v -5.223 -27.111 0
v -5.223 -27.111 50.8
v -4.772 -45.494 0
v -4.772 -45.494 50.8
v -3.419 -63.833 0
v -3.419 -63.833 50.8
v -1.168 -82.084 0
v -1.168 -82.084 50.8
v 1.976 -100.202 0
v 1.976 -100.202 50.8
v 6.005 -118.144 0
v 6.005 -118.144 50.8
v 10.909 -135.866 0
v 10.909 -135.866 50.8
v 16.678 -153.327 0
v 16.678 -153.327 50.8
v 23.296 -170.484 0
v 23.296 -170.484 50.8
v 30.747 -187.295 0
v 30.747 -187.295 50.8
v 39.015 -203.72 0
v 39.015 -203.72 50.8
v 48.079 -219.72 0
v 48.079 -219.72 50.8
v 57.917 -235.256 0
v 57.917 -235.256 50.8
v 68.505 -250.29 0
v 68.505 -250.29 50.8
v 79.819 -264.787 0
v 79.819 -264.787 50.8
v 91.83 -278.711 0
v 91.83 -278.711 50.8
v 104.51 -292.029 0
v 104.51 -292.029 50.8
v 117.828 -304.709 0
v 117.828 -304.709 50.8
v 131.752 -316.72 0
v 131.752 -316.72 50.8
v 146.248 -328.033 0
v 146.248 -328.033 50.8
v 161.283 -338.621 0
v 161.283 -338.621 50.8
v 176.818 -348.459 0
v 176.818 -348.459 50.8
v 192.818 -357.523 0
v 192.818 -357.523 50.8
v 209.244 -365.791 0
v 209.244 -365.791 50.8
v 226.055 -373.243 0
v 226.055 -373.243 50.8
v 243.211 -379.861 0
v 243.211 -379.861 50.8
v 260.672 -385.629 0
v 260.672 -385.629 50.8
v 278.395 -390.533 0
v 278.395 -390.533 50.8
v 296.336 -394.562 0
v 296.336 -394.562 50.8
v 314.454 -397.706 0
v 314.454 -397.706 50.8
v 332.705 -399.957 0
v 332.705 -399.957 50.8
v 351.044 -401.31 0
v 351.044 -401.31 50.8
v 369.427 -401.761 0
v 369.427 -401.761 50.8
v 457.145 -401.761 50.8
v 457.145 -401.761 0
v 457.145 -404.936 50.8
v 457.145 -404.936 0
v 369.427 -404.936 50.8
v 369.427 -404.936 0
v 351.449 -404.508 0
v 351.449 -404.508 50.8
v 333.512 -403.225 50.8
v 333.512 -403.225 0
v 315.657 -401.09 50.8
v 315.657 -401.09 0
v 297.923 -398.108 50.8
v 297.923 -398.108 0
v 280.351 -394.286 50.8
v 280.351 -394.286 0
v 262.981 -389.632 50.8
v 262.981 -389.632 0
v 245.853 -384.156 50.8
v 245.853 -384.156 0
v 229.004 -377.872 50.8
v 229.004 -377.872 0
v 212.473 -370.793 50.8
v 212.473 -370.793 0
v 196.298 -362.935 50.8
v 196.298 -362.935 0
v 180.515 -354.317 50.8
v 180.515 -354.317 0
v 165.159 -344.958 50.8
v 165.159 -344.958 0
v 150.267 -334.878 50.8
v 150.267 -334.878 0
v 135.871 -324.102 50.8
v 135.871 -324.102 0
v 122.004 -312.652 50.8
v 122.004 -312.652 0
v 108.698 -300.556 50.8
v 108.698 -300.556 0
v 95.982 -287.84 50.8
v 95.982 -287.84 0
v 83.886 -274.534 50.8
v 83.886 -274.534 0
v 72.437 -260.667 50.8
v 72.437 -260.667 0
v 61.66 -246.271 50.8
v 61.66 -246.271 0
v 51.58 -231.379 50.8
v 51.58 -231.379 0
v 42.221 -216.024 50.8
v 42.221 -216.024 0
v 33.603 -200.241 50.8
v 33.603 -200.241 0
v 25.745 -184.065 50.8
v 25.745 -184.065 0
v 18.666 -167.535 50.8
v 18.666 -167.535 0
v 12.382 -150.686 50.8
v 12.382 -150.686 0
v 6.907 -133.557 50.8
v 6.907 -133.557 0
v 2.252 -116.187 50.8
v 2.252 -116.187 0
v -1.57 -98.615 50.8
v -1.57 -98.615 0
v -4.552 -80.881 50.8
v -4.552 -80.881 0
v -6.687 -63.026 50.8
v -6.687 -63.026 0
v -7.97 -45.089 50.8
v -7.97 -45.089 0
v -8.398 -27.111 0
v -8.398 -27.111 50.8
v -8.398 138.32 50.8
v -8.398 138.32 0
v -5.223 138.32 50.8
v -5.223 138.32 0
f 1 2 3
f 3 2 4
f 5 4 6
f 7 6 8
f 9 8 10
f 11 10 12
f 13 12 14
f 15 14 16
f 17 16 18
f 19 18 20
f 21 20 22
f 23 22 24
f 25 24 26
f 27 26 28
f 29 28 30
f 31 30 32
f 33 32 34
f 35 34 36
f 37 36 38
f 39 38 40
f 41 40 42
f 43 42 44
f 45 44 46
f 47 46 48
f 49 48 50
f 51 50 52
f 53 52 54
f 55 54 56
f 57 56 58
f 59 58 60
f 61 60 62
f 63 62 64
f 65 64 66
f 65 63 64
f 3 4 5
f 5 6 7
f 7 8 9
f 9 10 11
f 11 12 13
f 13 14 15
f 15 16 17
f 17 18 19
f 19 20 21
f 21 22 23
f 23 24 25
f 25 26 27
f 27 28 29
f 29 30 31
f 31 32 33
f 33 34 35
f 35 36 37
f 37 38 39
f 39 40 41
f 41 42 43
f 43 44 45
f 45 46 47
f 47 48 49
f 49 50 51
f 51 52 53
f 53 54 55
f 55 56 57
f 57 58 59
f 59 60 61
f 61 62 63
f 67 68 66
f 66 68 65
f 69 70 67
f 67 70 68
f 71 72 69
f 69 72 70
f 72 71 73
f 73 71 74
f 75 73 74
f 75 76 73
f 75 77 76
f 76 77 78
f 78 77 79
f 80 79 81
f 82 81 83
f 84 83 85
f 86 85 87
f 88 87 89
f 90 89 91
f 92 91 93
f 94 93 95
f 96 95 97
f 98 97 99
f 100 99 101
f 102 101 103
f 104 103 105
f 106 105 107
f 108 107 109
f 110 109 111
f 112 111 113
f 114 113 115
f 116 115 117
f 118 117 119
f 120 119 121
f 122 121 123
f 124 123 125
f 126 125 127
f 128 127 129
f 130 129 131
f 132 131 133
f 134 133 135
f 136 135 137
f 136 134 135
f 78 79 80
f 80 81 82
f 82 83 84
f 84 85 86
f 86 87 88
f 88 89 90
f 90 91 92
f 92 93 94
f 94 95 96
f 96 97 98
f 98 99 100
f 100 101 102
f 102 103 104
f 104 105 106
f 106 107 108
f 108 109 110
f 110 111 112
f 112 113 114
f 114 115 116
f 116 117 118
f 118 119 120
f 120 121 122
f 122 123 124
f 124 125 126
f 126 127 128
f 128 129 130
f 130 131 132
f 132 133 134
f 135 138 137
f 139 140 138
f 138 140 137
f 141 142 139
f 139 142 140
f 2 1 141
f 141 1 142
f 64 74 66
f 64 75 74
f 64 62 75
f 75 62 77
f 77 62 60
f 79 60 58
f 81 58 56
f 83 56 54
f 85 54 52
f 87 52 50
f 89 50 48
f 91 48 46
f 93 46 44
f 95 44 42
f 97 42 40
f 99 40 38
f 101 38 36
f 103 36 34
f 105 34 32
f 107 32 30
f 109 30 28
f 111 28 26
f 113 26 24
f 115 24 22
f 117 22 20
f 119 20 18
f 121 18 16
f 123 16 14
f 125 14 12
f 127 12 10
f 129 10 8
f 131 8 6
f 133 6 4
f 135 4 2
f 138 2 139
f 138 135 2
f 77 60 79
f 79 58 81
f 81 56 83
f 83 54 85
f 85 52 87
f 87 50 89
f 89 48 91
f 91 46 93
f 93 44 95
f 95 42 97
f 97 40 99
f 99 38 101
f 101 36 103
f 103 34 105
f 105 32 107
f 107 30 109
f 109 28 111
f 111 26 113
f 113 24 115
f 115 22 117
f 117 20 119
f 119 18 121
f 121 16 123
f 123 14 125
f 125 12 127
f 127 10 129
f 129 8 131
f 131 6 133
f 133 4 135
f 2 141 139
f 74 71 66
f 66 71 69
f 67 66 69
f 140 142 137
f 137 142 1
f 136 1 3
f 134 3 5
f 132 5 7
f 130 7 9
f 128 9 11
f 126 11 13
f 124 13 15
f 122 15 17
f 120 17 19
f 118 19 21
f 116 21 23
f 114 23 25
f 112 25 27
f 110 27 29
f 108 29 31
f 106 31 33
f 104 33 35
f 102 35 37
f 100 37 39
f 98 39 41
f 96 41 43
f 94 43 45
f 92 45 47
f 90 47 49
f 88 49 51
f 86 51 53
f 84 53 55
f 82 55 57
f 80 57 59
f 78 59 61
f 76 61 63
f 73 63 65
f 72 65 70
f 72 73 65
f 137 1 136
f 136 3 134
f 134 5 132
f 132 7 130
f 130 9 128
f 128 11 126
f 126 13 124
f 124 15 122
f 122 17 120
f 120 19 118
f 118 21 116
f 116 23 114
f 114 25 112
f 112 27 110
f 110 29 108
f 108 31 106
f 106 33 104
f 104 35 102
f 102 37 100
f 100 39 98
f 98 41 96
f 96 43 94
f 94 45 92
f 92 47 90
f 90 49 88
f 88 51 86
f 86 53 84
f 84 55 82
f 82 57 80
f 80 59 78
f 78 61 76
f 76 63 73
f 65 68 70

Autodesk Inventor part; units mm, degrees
ref_plane "YZ Plane" through (0, 0, 0) normal (1, 0, 0) x (0, 1, 0)
ref_plane "XZ Plane" through (0, 0, 0) normal (0, 1, 0) x (-1, 0, 0)
ref_plane "XY Plane" through (0, 0, 0) normal (0, 0, 1) x (1, 0, 0)
sketch "Sketch1" plane through (0, 0, 0) normal (0, 0, 1) x (1, 0, 0)
  arc A0 (-5.2229, -27.1112) -> (369.4271, -401.7612) centre (369.4271, -27.1112) ccw
  arc A1 (-8.3979, -27.1112) -> (369.4271, -404.9362) centre (369.4271, -27.1112) ccw
  line L0 (-5.2229, -27.1112) -> (-5.2229, 138.3204)
  line L1 (-5.2229, 138.3204) -> (-8.3979, 138.3204)
  line L2 (-8.3979, 138.3204) -> (-8.3979, -27.1112)
  line L3 (369.4271, -404.9362) -> (457.1448, -404.9362)
  line L4 (457.1448, -404.9362) -> (457.1448, -401.7612)
  line L5 (457.1448, -401.7612) -> (369.4271, -401.7612)
  line L6 (-5.2229, -27.1112) -> (-8.3979, -27.1112) construction
  point P0 (0, 0)
  dimension "d0" = 749.3
  dimension "d2" = 3.175
extrude "Extrusion1" add sketch "Sketch1" along normal blind 50.8
properties part number "Shooter Curve"
